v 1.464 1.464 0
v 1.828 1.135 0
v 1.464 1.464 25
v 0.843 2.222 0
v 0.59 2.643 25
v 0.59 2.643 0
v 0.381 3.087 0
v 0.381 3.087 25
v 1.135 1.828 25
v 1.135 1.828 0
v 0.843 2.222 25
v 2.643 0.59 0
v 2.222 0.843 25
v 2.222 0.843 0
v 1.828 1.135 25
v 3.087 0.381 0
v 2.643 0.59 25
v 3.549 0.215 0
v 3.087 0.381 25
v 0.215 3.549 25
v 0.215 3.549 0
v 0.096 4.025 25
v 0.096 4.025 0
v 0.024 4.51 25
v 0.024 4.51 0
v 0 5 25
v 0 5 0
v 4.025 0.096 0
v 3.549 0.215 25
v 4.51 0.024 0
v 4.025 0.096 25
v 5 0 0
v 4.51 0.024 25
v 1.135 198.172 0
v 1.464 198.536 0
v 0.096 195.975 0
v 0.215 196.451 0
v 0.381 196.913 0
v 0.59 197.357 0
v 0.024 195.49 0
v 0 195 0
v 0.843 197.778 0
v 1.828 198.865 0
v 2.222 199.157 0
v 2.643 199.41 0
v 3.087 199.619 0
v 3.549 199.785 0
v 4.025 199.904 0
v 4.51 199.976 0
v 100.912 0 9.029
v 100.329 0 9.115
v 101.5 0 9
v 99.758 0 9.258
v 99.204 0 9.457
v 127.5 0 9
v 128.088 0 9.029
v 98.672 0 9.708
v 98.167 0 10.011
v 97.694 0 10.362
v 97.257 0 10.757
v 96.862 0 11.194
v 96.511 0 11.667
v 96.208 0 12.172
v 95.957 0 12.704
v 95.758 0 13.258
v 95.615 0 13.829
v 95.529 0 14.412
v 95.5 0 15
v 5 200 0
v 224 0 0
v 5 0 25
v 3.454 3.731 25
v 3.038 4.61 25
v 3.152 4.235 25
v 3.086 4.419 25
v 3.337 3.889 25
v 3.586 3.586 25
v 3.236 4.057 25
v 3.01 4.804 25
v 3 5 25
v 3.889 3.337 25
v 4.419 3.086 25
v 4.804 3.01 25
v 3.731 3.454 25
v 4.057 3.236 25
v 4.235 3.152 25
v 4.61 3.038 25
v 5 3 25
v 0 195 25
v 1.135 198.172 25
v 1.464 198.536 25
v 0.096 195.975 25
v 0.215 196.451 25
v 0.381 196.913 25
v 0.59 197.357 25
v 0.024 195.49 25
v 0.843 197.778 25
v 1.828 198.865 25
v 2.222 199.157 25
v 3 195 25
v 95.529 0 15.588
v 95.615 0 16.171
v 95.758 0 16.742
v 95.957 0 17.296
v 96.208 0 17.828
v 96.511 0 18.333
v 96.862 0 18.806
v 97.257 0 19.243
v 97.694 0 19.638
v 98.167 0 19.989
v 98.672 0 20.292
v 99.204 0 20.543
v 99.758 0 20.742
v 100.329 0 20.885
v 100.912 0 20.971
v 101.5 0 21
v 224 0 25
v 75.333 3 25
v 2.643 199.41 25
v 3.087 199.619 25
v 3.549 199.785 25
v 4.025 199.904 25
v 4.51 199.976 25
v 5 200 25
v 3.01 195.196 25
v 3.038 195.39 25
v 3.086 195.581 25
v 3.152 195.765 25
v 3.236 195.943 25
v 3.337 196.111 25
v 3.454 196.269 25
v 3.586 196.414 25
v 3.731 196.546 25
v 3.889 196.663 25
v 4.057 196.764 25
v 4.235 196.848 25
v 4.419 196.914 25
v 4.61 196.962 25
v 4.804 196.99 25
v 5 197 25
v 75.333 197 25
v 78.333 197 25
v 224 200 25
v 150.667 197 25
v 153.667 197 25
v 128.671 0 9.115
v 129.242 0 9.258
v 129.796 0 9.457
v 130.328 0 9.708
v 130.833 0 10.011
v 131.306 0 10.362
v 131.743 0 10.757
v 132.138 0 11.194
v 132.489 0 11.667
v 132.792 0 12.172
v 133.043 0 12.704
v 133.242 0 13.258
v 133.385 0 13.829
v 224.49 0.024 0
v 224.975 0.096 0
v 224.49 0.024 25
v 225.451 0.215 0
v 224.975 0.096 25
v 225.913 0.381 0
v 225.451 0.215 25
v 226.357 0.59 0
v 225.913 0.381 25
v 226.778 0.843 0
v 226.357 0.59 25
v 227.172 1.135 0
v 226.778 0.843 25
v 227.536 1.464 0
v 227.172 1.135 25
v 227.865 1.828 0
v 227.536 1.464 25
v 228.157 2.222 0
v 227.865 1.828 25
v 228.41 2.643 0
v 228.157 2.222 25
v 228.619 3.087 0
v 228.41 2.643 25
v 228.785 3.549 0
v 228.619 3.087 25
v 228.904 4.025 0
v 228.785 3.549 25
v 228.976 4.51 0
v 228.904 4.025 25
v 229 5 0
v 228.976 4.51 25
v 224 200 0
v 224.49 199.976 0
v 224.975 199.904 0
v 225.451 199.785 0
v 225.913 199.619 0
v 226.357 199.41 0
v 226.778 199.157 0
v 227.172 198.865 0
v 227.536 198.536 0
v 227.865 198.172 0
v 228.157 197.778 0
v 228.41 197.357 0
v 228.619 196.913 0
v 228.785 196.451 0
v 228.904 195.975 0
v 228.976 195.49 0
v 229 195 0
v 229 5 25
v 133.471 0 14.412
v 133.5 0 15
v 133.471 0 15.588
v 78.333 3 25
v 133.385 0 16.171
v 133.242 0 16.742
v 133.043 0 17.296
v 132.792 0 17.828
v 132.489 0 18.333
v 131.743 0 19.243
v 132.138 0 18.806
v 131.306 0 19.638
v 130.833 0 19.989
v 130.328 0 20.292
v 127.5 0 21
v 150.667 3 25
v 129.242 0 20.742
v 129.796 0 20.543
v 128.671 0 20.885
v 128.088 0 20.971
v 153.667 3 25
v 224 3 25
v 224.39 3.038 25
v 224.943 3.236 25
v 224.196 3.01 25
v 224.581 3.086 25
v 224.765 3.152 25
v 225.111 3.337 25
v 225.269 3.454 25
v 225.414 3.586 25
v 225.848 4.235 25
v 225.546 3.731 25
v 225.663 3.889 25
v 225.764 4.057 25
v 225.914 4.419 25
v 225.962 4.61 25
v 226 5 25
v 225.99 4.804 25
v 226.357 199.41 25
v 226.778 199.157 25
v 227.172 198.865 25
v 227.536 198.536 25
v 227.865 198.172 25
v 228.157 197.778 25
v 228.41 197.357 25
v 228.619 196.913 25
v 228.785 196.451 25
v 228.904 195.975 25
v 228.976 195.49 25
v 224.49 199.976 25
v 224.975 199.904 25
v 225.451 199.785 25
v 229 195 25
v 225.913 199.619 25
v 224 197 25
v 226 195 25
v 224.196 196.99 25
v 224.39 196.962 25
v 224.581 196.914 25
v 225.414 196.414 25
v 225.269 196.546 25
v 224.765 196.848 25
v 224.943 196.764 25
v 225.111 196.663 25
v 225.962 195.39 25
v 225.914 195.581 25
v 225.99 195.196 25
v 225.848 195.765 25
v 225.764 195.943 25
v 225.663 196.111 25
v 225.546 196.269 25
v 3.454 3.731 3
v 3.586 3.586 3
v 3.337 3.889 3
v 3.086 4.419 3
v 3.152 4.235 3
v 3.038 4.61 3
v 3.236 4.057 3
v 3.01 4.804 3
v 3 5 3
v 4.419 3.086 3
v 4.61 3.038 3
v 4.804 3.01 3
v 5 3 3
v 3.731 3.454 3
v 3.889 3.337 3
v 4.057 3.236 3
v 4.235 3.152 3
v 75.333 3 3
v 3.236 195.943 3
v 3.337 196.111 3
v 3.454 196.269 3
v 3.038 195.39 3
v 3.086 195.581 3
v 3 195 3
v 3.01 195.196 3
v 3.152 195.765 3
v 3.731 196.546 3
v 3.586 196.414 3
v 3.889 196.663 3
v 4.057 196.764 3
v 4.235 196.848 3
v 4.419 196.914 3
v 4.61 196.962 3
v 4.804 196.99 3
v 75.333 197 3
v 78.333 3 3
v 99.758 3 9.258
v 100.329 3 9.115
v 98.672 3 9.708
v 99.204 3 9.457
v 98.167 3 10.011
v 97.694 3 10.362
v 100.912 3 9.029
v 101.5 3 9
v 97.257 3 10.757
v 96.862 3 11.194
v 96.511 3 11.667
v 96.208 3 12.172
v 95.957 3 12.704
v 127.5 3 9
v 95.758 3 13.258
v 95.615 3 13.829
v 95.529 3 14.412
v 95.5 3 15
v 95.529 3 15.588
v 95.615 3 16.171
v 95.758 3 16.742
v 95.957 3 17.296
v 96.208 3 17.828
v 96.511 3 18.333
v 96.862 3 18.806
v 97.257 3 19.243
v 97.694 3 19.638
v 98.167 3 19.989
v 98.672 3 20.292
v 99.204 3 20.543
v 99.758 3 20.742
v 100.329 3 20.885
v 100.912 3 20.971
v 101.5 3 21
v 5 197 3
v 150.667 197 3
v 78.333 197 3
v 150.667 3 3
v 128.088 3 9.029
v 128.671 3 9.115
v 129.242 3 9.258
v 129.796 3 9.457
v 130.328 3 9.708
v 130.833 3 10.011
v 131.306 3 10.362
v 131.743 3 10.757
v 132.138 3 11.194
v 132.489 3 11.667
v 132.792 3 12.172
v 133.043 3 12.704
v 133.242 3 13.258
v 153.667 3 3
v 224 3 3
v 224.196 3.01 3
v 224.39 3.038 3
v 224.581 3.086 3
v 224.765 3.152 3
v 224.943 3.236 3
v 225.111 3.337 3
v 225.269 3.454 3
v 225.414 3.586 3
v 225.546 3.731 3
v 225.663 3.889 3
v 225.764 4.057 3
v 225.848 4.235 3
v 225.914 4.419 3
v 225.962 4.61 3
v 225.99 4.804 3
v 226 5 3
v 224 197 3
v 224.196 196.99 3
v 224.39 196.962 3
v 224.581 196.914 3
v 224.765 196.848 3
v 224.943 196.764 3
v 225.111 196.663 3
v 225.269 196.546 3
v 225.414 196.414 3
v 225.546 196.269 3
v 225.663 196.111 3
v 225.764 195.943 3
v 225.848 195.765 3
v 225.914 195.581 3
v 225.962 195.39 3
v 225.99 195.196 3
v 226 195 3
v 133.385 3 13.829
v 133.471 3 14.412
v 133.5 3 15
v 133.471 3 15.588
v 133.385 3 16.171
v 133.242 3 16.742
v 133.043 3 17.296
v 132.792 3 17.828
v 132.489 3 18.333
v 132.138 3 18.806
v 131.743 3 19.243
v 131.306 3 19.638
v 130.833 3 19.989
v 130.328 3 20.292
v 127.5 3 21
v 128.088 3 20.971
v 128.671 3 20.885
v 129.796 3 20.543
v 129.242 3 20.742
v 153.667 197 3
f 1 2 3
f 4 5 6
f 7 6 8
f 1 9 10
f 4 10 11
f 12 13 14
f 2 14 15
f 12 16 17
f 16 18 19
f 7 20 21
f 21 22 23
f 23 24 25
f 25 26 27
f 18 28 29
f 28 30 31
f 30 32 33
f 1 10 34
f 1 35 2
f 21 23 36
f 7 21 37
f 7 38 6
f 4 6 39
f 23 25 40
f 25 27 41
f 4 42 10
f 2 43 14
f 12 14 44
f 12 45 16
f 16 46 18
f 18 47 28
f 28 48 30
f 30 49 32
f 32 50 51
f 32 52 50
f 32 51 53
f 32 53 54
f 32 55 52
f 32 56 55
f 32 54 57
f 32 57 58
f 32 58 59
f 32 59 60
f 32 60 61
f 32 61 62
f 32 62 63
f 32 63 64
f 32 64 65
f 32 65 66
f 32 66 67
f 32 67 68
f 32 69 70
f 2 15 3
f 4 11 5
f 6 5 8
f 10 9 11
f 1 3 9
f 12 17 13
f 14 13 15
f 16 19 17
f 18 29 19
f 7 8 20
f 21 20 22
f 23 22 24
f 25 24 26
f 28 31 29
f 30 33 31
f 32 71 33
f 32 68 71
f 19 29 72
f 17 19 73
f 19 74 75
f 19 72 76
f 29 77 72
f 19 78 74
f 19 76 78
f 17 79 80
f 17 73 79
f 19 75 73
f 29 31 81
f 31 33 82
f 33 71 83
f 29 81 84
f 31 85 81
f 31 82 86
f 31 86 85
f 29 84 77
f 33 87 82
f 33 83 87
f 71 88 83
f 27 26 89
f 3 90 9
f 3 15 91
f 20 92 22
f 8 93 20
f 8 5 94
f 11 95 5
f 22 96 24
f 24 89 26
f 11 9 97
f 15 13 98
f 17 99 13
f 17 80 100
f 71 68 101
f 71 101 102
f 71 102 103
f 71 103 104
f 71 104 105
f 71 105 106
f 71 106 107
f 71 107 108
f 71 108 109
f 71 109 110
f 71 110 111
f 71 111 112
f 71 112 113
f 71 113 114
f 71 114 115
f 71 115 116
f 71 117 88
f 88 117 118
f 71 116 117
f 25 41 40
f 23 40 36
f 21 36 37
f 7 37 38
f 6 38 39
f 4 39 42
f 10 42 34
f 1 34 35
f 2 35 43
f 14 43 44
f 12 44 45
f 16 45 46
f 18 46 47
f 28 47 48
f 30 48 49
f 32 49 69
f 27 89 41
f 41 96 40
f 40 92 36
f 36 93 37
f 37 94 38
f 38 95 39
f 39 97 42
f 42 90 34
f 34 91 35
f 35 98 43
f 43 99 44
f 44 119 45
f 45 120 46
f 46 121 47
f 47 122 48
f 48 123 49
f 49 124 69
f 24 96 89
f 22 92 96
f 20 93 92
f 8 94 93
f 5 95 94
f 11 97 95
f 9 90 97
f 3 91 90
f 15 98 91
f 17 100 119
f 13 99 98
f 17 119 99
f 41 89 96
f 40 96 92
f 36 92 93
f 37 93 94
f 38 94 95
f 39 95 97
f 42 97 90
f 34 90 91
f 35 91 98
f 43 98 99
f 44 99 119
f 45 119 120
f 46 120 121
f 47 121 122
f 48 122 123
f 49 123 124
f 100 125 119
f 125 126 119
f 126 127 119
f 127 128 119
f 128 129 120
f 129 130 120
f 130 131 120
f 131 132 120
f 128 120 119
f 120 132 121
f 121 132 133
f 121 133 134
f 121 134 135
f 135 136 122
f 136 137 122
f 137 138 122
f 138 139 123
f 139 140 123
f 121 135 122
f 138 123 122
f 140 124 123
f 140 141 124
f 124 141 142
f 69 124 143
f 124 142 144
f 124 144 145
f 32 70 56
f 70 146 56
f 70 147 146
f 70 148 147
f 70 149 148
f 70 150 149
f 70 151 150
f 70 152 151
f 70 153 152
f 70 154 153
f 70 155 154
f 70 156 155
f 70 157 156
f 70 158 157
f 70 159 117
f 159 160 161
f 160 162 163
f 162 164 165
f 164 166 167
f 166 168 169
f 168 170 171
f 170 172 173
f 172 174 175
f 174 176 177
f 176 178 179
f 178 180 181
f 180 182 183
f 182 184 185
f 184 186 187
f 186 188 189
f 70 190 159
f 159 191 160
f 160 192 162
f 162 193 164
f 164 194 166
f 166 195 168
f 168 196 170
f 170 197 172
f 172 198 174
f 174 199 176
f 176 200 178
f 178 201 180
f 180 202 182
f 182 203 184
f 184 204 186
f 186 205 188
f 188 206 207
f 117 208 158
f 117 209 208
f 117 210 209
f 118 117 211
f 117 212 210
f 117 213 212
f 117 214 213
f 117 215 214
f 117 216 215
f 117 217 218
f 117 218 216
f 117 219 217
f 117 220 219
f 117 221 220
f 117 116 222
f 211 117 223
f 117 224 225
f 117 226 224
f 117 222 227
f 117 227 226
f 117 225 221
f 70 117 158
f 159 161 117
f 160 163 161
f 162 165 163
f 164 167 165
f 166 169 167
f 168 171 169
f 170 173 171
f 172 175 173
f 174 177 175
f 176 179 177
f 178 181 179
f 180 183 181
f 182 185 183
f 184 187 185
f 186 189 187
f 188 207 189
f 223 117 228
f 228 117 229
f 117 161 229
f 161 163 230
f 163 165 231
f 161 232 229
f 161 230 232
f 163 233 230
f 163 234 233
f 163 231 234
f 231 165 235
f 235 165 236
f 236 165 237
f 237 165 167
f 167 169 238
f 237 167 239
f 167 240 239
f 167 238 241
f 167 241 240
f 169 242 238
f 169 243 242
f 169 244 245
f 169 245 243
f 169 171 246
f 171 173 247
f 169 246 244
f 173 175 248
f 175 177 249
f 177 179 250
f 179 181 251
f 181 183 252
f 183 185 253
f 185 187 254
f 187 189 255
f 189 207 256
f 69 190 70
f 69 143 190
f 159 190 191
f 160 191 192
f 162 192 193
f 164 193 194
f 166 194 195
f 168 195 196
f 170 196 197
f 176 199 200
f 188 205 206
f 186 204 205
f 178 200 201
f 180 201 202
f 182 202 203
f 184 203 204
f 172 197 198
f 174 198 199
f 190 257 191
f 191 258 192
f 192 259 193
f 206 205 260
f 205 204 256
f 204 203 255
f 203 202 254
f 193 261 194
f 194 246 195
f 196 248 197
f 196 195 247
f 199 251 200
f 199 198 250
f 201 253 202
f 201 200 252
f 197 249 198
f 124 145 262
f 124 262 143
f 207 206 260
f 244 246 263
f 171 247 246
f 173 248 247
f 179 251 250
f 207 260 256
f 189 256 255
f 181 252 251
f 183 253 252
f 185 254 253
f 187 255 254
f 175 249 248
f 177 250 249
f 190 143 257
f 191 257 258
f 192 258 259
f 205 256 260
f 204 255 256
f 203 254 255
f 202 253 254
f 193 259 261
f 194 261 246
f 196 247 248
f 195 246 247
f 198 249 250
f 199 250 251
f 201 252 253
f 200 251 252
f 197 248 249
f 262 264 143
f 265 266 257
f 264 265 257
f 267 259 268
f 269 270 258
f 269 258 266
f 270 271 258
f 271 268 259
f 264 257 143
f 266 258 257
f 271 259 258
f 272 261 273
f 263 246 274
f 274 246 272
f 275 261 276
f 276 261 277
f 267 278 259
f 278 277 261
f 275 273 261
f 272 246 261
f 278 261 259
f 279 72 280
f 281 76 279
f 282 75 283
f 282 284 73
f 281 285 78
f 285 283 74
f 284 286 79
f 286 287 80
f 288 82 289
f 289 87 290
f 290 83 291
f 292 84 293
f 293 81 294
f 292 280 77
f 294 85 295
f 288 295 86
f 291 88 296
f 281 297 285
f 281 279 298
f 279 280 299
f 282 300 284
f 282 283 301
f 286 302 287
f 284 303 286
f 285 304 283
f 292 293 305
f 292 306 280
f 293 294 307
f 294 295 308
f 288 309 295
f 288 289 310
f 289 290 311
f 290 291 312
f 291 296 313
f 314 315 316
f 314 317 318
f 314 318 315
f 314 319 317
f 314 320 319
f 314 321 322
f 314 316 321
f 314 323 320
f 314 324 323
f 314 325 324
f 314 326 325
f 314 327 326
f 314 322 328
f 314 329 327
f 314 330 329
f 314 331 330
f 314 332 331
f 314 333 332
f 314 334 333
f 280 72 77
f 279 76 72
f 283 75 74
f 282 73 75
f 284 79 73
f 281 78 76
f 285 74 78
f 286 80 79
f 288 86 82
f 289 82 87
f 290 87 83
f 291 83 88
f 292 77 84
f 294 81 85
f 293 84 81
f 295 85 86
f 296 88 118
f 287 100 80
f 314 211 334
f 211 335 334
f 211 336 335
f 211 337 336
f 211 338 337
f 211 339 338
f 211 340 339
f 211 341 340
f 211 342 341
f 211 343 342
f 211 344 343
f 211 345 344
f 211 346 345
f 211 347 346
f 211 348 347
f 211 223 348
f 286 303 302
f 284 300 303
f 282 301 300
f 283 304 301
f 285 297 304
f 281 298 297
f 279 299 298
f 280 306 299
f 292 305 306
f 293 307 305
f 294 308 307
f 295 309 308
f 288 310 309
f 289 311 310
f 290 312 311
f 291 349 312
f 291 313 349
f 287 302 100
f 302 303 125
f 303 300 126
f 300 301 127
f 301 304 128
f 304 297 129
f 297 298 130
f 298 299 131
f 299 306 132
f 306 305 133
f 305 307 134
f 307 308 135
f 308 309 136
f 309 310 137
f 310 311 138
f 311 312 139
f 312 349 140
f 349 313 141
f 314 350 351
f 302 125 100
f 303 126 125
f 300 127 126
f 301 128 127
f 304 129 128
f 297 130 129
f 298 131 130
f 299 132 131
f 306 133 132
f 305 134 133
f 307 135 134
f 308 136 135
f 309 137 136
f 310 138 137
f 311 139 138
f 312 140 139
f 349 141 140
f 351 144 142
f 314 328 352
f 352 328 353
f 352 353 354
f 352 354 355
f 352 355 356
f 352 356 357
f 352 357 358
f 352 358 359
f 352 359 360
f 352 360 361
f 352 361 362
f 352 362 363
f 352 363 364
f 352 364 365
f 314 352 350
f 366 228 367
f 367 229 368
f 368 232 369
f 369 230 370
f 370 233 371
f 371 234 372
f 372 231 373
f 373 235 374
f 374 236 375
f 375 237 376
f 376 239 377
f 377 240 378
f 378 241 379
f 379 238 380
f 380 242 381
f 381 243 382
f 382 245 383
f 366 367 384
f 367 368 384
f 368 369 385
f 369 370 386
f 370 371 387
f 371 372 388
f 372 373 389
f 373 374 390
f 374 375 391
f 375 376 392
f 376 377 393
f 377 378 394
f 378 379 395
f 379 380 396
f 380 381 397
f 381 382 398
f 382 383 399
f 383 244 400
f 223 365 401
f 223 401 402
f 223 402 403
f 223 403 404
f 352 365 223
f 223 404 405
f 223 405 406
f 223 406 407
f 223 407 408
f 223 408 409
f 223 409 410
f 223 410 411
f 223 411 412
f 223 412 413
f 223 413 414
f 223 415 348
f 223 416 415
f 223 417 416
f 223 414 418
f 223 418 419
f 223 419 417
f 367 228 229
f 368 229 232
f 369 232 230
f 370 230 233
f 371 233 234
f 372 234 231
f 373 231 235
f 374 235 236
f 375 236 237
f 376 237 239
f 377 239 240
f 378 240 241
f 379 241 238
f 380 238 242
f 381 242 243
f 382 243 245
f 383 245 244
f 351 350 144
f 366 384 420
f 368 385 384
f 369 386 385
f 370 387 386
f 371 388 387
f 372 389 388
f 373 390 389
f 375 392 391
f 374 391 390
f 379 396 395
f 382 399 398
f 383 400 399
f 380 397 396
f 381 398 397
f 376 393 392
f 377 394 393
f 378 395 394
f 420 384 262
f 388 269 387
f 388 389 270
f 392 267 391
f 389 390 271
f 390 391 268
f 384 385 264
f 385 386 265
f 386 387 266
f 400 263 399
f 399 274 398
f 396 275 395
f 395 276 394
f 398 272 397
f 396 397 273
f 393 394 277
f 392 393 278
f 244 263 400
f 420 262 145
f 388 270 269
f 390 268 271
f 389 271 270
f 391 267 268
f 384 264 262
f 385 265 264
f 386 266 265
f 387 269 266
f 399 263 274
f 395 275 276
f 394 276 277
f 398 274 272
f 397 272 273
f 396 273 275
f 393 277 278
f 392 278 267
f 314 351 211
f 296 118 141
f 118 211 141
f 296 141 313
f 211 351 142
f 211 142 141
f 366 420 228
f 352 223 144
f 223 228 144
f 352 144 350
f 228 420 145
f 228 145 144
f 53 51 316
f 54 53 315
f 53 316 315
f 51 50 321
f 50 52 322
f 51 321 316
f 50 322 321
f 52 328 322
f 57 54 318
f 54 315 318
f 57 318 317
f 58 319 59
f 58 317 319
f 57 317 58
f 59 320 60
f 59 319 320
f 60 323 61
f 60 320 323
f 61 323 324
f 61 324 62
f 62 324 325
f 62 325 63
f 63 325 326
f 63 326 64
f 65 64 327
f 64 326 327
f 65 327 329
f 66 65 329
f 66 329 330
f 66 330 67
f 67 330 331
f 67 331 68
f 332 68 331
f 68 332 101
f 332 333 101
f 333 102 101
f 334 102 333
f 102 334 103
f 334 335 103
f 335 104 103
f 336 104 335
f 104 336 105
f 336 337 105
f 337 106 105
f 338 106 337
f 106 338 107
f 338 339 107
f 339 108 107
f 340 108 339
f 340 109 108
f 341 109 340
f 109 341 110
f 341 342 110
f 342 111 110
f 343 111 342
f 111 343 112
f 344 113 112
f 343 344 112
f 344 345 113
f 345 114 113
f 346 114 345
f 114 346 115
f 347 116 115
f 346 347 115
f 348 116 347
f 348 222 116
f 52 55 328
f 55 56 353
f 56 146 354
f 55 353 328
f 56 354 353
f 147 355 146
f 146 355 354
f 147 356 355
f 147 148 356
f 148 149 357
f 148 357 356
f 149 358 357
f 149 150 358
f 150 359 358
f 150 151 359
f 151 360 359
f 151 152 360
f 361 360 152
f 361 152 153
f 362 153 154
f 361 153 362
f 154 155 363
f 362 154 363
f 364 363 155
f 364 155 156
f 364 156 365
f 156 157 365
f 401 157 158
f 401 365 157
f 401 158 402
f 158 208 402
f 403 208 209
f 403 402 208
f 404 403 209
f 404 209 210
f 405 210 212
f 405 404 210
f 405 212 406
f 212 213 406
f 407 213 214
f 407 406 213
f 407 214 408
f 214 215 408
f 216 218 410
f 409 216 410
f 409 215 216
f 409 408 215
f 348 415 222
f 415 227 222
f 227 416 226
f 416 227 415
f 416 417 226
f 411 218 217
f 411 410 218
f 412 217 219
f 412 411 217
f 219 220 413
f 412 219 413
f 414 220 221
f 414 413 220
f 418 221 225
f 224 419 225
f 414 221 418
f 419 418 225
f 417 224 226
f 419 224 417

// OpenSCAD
// Bath tray / shelf organizer
// Exact outside dimensions: 229 x 200 x 25 mm

$fn = 64;

tray_length = 229;
tray_depth = 200;
tray_height = 25;

corner_radius = 5;
wall_thickness = 3;
bottom_thickness = 3;
divider_thickness = 3;

finger_slot_width = 38;
finger_slot_height = 12;
finger_slot_center_z = 15;

inner_length = tray_length - 2 * wall_thickness;
inner_depth = tray_depth - 2 * wall_thickness;
compartment_width =
    (inner_length - 2 * divider_thickness) / 3;

module rounded_prism(size_x, size_y, size_z, radius) {
    linear_extrude(height = size_z)
        hull() {
            for (x = [radius, size_x - radius])
                for (y = [radius, size_y - radius])
                    translate([x, y]) circle(r = radius);
        }
}

module tray_shell() {
    difference() {
        rounded_prism(
            tray_length,
            tray_depth,
            tray_height,
            corner_radius
        );

        // Open cavity; the small overlap guarantees a clean top edge.
        translate([wall_thickness, wall_thickness, bottom_thickness])
            rounded_prism(
                inner_length,
                inner_depth,
                tray_height - bottom_thickness + 0.2,
                max(corner_radius - wall_thickness, 0.5)
            );
    }
}

module dividers() {
    for (i = [1 : 2]) {
        divider_x = wall_thickness
            + i * compartment_width
            + (i - 1) * divider_thickness;

        translate([
            divider_x,
            wall_thickness,
            bottom_thickness
        ])
            cube([
                divider_thickness,
                inner_depth,
                tray_height - bottom_thickness
            ]);
    }
}

module finger_slot() {
    slot_radius = finger_slot_height / 2;
    center_spacing = finger_slot_width - finger_slot_height;

    translate([
        tray_length / 2,
        wall_thickness / 2,
        finger_slot_center_z
    ])
        hull() {
            for (x = [-center_spacing / 2, center_spacing / 2])
                translate([x, 0, 0])
                    rotate([90, 0, 0])
                        cylinder(
                            h = wall_thickness + 4,
                            r = slot_radius,
                            center = true
                        );
        }
}

difference() {
    union() {
        tray_shell();
        dividers();
    }

    finger_slot();
}
